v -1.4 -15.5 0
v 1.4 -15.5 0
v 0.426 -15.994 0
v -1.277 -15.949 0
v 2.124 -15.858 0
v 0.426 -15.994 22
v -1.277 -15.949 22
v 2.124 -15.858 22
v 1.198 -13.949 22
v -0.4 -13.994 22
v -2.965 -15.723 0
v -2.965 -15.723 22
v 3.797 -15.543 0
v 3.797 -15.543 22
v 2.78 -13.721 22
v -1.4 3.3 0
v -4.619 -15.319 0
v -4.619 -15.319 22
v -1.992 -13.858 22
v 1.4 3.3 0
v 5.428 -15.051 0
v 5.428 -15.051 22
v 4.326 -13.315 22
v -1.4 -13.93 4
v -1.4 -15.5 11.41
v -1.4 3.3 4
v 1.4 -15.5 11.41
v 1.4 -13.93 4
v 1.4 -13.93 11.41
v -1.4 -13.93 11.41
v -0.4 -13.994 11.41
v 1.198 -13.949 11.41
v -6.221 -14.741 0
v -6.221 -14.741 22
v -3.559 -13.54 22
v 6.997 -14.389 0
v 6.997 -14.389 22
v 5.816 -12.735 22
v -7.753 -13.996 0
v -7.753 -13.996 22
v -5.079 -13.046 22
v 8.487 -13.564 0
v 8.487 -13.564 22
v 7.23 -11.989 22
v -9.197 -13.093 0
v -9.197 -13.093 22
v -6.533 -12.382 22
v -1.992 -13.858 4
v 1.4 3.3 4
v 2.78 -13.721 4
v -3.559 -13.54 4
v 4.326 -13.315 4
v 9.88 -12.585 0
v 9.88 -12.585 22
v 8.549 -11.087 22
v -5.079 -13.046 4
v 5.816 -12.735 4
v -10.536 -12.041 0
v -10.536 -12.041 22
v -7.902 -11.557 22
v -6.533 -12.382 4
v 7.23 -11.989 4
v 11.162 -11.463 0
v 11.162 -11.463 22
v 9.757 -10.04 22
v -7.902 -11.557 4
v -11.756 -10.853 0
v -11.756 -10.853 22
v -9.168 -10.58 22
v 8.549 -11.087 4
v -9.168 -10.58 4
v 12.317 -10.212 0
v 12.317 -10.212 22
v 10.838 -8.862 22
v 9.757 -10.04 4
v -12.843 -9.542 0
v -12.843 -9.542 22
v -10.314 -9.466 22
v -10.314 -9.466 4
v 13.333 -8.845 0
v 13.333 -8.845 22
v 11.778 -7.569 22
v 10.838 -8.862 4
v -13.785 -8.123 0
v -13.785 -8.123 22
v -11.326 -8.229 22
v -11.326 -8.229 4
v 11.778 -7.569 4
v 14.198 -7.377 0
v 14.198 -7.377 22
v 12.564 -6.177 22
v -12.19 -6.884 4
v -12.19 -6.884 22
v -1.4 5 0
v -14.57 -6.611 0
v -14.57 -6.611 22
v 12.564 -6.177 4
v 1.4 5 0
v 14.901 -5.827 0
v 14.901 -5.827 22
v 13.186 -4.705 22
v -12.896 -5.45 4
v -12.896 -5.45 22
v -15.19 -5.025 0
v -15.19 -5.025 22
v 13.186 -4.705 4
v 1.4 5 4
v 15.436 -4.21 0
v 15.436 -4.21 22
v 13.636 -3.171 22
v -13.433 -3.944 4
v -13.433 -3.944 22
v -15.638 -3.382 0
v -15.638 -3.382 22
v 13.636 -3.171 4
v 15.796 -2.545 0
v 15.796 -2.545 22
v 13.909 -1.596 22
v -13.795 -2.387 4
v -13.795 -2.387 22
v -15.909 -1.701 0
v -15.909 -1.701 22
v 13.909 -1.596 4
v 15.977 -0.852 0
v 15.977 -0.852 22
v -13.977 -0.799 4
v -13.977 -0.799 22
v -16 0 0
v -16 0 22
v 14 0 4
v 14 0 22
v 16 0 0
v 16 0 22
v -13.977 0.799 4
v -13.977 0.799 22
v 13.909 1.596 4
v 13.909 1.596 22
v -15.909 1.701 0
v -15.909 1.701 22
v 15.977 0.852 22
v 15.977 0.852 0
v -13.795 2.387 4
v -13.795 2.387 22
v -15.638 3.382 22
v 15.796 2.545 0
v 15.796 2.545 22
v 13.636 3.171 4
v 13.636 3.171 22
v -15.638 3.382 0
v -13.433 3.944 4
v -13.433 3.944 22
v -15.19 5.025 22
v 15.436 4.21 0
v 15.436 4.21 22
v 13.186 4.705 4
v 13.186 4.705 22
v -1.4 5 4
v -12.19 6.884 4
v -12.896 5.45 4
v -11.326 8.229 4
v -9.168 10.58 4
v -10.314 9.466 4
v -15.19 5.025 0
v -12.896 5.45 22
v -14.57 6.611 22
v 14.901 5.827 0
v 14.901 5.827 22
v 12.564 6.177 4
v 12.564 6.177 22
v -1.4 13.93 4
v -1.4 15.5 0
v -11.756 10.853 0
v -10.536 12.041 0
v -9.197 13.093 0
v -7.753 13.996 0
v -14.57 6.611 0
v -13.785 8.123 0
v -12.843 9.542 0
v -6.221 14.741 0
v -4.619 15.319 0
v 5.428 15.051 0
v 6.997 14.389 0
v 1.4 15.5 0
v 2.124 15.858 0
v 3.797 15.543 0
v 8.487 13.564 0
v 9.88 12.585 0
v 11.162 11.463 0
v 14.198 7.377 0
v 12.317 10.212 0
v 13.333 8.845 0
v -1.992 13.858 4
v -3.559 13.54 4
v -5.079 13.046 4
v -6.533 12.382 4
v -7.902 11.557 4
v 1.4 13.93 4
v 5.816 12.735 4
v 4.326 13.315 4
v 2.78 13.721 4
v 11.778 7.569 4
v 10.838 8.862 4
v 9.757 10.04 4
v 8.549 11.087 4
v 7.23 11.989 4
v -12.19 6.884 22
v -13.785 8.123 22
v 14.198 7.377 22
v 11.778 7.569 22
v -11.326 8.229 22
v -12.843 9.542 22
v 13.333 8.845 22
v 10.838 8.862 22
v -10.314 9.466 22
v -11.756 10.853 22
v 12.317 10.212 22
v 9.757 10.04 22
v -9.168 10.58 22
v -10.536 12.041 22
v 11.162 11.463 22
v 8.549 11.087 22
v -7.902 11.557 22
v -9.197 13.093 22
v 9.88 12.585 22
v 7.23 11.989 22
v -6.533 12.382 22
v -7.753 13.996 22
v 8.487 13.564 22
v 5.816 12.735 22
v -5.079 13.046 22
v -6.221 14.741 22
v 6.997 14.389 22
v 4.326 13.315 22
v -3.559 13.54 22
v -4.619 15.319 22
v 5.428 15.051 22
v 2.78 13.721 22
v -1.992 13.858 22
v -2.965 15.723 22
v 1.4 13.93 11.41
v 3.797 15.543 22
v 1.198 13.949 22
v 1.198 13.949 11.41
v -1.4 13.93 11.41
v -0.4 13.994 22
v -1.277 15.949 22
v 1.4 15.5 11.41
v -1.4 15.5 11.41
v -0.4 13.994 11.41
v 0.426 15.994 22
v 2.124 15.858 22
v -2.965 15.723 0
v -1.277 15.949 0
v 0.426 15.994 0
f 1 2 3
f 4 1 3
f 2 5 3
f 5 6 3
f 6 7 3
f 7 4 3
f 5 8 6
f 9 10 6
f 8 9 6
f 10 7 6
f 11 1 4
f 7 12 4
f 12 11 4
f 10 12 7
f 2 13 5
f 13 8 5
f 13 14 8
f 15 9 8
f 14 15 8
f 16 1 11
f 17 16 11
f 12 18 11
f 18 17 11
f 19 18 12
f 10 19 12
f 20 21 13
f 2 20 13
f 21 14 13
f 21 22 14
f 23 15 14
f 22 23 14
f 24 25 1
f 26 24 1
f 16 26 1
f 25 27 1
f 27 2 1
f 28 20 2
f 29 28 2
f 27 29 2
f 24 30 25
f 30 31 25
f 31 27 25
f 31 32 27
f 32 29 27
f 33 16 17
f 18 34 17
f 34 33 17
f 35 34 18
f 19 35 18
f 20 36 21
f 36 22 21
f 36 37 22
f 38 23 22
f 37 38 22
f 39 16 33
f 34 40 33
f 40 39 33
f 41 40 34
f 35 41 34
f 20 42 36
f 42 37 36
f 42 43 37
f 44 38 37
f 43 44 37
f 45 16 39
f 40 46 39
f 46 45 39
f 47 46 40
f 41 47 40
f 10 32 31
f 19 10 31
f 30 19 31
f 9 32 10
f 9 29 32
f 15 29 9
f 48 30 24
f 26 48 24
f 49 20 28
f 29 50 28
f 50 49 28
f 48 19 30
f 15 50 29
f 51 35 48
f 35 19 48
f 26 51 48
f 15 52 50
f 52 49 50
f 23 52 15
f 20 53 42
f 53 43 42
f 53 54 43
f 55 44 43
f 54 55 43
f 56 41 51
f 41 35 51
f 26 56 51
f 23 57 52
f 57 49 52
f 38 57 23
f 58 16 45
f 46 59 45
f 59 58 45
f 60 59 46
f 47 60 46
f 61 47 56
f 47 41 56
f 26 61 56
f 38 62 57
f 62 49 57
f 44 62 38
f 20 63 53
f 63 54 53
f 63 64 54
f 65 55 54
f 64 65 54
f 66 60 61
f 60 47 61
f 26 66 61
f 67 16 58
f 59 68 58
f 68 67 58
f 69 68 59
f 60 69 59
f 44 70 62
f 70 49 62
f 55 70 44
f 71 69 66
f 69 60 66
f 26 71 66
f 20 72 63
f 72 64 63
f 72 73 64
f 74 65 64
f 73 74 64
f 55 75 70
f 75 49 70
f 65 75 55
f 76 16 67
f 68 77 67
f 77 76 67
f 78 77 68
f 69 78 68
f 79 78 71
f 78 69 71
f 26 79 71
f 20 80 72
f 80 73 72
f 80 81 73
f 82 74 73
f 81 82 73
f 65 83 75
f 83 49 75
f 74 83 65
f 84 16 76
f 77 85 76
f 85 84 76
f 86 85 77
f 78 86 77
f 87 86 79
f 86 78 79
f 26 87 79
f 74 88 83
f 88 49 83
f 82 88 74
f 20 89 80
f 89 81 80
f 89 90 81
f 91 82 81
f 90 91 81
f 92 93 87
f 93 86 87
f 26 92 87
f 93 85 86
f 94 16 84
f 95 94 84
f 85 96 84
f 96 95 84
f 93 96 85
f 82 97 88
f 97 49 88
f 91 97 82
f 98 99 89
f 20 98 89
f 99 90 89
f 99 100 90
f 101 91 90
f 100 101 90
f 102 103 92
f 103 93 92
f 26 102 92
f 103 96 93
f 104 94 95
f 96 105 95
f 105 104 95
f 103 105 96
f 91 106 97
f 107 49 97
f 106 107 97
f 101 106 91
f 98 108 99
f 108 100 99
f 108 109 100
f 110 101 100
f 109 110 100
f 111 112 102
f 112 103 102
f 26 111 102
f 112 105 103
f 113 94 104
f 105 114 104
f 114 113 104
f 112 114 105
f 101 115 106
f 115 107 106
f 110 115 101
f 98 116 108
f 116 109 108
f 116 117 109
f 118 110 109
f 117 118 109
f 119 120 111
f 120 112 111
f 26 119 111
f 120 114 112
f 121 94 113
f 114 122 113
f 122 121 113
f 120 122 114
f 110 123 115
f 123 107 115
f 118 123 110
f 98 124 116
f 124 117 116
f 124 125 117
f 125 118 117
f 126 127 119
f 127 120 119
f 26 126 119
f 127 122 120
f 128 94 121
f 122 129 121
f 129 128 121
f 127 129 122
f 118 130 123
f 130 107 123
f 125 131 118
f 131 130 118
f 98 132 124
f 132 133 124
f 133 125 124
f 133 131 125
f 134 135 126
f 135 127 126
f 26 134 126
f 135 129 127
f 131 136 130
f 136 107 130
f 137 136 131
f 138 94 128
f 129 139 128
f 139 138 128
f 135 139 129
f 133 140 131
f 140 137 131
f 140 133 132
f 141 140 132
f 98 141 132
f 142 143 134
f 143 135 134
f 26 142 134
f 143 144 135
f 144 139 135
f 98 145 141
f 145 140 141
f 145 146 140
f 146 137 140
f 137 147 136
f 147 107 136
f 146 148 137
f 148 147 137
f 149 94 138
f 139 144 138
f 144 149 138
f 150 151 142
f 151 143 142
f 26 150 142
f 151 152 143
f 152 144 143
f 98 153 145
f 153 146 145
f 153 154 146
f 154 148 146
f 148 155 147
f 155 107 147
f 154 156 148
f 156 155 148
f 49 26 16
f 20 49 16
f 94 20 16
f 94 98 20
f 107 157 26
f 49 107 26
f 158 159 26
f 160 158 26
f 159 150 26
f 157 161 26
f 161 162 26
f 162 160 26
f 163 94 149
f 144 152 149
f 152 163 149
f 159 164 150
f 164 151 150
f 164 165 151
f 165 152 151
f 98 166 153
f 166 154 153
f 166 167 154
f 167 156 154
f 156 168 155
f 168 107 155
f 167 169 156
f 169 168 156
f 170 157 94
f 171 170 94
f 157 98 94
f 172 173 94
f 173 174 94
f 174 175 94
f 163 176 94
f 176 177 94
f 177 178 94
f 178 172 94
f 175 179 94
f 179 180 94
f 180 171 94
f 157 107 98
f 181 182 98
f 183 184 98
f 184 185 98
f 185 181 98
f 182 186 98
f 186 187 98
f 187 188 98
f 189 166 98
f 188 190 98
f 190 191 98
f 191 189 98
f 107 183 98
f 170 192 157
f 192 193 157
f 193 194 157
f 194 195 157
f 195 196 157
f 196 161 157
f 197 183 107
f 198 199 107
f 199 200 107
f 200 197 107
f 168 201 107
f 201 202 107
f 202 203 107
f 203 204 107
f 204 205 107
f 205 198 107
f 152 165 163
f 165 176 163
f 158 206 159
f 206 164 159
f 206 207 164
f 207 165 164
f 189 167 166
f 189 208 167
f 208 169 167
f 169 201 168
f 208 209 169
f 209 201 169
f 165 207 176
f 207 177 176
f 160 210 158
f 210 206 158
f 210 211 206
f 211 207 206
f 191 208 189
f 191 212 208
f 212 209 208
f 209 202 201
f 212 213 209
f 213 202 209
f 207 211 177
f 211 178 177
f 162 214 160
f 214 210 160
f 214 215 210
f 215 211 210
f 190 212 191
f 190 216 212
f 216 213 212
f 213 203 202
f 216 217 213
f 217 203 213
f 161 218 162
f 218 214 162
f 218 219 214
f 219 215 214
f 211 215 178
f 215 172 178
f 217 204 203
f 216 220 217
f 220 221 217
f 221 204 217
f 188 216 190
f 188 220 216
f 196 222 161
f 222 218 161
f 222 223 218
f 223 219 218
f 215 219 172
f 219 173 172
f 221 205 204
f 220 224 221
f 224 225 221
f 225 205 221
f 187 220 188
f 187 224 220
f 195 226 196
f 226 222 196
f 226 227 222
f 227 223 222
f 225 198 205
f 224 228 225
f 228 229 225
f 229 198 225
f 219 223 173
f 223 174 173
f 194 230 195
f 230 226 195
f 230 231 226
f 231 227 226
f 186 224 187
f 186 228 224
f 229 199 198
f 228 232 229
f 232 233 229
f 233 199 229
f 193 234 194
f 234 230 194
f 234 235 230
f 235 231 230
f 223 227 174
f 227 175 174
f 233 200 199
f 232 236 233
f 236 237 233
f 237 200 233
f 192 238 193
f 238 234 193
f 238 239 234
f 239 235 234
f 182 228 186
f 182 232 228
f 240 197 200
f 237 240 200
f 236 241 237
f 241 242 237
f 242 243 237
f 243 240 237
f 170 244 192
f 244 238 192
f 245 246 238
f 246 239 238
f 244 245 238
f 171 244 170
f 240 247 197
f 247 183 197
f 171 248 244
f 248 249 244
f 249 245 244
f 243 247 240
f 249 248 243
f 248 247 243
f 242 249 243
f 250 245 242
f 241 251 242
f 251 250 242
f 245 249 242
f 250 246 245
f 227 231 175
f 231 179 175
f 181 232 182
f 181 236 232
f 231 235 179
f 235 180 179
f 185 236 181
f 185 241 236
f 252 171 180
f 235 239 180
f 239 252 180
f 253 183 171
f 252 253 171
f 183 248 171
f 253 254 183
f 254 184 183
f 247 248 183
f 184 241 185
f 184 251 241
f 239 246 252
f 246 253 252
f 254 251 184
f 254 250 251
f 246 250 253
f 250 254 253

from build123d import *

# Parameters (mm, degrees)
ESQUISSE1_R             = 16
BOSS_EXTRU_1_DEPTH      = 22
ESQUISSE2_W             = 2.8
ESQUISSE2_H             = 31
ENL_V_MAT_EXTRU_1_DEPTH = 11.41
ESQUISSE3_W             = 2.8
ESQUISSE3_H             = 1.7
BOSS_EXTRU_2_DEPTH      = 5
ESQUISSE4_R             = 14
ENL_V_MAT_EXTRU_2_DEPTH = 18


with BuildPart() as part:
    # Esquisse1 → Boss.-Extru.1 (new body)
    with BuildSketch(Plane.XY):
        Circle(ESQUISSE1_R)
    extrude(amount=BOSS_EXTRU_1_DEPTH)

    # Esquisse2 → Enlèv. mat.-Extru.1 (cut)
    with BuildSketch(Plane.XY):
        Rectangle(ESQUISSE2_W, ESQUISSE2_H)
    extrude(amount=ENL_V_MAT_EXTRU_1_DEPTH, mode=Mode.SUBTRACT)

    # Esquisse3 → Boss.-Extru.2 (add)
    with BuildSketch(Plane(origin=(0, 0, 0), x_dir=(-1, 0, 0), z_dir=(0, 0, -1))):
        with Locations((0, 4.15)):
            Rectangle(ESQUISSE3_W, ESQUISSE3_H)
    extrude(amount=-BOSS_EXTRU_2_DEPTH)

    # Esquisse4 → Enlèv. mat.-Extru.2 (cut)
    with BuildSketch(Plane.XY.offset(22)):
        Circle(ESQUISSE4_R)
    extrude(amount=-ENL_V_MAT_EXTRU_2_DEPTH, mode=Mode.SUBTRACT)


solid = part.part
